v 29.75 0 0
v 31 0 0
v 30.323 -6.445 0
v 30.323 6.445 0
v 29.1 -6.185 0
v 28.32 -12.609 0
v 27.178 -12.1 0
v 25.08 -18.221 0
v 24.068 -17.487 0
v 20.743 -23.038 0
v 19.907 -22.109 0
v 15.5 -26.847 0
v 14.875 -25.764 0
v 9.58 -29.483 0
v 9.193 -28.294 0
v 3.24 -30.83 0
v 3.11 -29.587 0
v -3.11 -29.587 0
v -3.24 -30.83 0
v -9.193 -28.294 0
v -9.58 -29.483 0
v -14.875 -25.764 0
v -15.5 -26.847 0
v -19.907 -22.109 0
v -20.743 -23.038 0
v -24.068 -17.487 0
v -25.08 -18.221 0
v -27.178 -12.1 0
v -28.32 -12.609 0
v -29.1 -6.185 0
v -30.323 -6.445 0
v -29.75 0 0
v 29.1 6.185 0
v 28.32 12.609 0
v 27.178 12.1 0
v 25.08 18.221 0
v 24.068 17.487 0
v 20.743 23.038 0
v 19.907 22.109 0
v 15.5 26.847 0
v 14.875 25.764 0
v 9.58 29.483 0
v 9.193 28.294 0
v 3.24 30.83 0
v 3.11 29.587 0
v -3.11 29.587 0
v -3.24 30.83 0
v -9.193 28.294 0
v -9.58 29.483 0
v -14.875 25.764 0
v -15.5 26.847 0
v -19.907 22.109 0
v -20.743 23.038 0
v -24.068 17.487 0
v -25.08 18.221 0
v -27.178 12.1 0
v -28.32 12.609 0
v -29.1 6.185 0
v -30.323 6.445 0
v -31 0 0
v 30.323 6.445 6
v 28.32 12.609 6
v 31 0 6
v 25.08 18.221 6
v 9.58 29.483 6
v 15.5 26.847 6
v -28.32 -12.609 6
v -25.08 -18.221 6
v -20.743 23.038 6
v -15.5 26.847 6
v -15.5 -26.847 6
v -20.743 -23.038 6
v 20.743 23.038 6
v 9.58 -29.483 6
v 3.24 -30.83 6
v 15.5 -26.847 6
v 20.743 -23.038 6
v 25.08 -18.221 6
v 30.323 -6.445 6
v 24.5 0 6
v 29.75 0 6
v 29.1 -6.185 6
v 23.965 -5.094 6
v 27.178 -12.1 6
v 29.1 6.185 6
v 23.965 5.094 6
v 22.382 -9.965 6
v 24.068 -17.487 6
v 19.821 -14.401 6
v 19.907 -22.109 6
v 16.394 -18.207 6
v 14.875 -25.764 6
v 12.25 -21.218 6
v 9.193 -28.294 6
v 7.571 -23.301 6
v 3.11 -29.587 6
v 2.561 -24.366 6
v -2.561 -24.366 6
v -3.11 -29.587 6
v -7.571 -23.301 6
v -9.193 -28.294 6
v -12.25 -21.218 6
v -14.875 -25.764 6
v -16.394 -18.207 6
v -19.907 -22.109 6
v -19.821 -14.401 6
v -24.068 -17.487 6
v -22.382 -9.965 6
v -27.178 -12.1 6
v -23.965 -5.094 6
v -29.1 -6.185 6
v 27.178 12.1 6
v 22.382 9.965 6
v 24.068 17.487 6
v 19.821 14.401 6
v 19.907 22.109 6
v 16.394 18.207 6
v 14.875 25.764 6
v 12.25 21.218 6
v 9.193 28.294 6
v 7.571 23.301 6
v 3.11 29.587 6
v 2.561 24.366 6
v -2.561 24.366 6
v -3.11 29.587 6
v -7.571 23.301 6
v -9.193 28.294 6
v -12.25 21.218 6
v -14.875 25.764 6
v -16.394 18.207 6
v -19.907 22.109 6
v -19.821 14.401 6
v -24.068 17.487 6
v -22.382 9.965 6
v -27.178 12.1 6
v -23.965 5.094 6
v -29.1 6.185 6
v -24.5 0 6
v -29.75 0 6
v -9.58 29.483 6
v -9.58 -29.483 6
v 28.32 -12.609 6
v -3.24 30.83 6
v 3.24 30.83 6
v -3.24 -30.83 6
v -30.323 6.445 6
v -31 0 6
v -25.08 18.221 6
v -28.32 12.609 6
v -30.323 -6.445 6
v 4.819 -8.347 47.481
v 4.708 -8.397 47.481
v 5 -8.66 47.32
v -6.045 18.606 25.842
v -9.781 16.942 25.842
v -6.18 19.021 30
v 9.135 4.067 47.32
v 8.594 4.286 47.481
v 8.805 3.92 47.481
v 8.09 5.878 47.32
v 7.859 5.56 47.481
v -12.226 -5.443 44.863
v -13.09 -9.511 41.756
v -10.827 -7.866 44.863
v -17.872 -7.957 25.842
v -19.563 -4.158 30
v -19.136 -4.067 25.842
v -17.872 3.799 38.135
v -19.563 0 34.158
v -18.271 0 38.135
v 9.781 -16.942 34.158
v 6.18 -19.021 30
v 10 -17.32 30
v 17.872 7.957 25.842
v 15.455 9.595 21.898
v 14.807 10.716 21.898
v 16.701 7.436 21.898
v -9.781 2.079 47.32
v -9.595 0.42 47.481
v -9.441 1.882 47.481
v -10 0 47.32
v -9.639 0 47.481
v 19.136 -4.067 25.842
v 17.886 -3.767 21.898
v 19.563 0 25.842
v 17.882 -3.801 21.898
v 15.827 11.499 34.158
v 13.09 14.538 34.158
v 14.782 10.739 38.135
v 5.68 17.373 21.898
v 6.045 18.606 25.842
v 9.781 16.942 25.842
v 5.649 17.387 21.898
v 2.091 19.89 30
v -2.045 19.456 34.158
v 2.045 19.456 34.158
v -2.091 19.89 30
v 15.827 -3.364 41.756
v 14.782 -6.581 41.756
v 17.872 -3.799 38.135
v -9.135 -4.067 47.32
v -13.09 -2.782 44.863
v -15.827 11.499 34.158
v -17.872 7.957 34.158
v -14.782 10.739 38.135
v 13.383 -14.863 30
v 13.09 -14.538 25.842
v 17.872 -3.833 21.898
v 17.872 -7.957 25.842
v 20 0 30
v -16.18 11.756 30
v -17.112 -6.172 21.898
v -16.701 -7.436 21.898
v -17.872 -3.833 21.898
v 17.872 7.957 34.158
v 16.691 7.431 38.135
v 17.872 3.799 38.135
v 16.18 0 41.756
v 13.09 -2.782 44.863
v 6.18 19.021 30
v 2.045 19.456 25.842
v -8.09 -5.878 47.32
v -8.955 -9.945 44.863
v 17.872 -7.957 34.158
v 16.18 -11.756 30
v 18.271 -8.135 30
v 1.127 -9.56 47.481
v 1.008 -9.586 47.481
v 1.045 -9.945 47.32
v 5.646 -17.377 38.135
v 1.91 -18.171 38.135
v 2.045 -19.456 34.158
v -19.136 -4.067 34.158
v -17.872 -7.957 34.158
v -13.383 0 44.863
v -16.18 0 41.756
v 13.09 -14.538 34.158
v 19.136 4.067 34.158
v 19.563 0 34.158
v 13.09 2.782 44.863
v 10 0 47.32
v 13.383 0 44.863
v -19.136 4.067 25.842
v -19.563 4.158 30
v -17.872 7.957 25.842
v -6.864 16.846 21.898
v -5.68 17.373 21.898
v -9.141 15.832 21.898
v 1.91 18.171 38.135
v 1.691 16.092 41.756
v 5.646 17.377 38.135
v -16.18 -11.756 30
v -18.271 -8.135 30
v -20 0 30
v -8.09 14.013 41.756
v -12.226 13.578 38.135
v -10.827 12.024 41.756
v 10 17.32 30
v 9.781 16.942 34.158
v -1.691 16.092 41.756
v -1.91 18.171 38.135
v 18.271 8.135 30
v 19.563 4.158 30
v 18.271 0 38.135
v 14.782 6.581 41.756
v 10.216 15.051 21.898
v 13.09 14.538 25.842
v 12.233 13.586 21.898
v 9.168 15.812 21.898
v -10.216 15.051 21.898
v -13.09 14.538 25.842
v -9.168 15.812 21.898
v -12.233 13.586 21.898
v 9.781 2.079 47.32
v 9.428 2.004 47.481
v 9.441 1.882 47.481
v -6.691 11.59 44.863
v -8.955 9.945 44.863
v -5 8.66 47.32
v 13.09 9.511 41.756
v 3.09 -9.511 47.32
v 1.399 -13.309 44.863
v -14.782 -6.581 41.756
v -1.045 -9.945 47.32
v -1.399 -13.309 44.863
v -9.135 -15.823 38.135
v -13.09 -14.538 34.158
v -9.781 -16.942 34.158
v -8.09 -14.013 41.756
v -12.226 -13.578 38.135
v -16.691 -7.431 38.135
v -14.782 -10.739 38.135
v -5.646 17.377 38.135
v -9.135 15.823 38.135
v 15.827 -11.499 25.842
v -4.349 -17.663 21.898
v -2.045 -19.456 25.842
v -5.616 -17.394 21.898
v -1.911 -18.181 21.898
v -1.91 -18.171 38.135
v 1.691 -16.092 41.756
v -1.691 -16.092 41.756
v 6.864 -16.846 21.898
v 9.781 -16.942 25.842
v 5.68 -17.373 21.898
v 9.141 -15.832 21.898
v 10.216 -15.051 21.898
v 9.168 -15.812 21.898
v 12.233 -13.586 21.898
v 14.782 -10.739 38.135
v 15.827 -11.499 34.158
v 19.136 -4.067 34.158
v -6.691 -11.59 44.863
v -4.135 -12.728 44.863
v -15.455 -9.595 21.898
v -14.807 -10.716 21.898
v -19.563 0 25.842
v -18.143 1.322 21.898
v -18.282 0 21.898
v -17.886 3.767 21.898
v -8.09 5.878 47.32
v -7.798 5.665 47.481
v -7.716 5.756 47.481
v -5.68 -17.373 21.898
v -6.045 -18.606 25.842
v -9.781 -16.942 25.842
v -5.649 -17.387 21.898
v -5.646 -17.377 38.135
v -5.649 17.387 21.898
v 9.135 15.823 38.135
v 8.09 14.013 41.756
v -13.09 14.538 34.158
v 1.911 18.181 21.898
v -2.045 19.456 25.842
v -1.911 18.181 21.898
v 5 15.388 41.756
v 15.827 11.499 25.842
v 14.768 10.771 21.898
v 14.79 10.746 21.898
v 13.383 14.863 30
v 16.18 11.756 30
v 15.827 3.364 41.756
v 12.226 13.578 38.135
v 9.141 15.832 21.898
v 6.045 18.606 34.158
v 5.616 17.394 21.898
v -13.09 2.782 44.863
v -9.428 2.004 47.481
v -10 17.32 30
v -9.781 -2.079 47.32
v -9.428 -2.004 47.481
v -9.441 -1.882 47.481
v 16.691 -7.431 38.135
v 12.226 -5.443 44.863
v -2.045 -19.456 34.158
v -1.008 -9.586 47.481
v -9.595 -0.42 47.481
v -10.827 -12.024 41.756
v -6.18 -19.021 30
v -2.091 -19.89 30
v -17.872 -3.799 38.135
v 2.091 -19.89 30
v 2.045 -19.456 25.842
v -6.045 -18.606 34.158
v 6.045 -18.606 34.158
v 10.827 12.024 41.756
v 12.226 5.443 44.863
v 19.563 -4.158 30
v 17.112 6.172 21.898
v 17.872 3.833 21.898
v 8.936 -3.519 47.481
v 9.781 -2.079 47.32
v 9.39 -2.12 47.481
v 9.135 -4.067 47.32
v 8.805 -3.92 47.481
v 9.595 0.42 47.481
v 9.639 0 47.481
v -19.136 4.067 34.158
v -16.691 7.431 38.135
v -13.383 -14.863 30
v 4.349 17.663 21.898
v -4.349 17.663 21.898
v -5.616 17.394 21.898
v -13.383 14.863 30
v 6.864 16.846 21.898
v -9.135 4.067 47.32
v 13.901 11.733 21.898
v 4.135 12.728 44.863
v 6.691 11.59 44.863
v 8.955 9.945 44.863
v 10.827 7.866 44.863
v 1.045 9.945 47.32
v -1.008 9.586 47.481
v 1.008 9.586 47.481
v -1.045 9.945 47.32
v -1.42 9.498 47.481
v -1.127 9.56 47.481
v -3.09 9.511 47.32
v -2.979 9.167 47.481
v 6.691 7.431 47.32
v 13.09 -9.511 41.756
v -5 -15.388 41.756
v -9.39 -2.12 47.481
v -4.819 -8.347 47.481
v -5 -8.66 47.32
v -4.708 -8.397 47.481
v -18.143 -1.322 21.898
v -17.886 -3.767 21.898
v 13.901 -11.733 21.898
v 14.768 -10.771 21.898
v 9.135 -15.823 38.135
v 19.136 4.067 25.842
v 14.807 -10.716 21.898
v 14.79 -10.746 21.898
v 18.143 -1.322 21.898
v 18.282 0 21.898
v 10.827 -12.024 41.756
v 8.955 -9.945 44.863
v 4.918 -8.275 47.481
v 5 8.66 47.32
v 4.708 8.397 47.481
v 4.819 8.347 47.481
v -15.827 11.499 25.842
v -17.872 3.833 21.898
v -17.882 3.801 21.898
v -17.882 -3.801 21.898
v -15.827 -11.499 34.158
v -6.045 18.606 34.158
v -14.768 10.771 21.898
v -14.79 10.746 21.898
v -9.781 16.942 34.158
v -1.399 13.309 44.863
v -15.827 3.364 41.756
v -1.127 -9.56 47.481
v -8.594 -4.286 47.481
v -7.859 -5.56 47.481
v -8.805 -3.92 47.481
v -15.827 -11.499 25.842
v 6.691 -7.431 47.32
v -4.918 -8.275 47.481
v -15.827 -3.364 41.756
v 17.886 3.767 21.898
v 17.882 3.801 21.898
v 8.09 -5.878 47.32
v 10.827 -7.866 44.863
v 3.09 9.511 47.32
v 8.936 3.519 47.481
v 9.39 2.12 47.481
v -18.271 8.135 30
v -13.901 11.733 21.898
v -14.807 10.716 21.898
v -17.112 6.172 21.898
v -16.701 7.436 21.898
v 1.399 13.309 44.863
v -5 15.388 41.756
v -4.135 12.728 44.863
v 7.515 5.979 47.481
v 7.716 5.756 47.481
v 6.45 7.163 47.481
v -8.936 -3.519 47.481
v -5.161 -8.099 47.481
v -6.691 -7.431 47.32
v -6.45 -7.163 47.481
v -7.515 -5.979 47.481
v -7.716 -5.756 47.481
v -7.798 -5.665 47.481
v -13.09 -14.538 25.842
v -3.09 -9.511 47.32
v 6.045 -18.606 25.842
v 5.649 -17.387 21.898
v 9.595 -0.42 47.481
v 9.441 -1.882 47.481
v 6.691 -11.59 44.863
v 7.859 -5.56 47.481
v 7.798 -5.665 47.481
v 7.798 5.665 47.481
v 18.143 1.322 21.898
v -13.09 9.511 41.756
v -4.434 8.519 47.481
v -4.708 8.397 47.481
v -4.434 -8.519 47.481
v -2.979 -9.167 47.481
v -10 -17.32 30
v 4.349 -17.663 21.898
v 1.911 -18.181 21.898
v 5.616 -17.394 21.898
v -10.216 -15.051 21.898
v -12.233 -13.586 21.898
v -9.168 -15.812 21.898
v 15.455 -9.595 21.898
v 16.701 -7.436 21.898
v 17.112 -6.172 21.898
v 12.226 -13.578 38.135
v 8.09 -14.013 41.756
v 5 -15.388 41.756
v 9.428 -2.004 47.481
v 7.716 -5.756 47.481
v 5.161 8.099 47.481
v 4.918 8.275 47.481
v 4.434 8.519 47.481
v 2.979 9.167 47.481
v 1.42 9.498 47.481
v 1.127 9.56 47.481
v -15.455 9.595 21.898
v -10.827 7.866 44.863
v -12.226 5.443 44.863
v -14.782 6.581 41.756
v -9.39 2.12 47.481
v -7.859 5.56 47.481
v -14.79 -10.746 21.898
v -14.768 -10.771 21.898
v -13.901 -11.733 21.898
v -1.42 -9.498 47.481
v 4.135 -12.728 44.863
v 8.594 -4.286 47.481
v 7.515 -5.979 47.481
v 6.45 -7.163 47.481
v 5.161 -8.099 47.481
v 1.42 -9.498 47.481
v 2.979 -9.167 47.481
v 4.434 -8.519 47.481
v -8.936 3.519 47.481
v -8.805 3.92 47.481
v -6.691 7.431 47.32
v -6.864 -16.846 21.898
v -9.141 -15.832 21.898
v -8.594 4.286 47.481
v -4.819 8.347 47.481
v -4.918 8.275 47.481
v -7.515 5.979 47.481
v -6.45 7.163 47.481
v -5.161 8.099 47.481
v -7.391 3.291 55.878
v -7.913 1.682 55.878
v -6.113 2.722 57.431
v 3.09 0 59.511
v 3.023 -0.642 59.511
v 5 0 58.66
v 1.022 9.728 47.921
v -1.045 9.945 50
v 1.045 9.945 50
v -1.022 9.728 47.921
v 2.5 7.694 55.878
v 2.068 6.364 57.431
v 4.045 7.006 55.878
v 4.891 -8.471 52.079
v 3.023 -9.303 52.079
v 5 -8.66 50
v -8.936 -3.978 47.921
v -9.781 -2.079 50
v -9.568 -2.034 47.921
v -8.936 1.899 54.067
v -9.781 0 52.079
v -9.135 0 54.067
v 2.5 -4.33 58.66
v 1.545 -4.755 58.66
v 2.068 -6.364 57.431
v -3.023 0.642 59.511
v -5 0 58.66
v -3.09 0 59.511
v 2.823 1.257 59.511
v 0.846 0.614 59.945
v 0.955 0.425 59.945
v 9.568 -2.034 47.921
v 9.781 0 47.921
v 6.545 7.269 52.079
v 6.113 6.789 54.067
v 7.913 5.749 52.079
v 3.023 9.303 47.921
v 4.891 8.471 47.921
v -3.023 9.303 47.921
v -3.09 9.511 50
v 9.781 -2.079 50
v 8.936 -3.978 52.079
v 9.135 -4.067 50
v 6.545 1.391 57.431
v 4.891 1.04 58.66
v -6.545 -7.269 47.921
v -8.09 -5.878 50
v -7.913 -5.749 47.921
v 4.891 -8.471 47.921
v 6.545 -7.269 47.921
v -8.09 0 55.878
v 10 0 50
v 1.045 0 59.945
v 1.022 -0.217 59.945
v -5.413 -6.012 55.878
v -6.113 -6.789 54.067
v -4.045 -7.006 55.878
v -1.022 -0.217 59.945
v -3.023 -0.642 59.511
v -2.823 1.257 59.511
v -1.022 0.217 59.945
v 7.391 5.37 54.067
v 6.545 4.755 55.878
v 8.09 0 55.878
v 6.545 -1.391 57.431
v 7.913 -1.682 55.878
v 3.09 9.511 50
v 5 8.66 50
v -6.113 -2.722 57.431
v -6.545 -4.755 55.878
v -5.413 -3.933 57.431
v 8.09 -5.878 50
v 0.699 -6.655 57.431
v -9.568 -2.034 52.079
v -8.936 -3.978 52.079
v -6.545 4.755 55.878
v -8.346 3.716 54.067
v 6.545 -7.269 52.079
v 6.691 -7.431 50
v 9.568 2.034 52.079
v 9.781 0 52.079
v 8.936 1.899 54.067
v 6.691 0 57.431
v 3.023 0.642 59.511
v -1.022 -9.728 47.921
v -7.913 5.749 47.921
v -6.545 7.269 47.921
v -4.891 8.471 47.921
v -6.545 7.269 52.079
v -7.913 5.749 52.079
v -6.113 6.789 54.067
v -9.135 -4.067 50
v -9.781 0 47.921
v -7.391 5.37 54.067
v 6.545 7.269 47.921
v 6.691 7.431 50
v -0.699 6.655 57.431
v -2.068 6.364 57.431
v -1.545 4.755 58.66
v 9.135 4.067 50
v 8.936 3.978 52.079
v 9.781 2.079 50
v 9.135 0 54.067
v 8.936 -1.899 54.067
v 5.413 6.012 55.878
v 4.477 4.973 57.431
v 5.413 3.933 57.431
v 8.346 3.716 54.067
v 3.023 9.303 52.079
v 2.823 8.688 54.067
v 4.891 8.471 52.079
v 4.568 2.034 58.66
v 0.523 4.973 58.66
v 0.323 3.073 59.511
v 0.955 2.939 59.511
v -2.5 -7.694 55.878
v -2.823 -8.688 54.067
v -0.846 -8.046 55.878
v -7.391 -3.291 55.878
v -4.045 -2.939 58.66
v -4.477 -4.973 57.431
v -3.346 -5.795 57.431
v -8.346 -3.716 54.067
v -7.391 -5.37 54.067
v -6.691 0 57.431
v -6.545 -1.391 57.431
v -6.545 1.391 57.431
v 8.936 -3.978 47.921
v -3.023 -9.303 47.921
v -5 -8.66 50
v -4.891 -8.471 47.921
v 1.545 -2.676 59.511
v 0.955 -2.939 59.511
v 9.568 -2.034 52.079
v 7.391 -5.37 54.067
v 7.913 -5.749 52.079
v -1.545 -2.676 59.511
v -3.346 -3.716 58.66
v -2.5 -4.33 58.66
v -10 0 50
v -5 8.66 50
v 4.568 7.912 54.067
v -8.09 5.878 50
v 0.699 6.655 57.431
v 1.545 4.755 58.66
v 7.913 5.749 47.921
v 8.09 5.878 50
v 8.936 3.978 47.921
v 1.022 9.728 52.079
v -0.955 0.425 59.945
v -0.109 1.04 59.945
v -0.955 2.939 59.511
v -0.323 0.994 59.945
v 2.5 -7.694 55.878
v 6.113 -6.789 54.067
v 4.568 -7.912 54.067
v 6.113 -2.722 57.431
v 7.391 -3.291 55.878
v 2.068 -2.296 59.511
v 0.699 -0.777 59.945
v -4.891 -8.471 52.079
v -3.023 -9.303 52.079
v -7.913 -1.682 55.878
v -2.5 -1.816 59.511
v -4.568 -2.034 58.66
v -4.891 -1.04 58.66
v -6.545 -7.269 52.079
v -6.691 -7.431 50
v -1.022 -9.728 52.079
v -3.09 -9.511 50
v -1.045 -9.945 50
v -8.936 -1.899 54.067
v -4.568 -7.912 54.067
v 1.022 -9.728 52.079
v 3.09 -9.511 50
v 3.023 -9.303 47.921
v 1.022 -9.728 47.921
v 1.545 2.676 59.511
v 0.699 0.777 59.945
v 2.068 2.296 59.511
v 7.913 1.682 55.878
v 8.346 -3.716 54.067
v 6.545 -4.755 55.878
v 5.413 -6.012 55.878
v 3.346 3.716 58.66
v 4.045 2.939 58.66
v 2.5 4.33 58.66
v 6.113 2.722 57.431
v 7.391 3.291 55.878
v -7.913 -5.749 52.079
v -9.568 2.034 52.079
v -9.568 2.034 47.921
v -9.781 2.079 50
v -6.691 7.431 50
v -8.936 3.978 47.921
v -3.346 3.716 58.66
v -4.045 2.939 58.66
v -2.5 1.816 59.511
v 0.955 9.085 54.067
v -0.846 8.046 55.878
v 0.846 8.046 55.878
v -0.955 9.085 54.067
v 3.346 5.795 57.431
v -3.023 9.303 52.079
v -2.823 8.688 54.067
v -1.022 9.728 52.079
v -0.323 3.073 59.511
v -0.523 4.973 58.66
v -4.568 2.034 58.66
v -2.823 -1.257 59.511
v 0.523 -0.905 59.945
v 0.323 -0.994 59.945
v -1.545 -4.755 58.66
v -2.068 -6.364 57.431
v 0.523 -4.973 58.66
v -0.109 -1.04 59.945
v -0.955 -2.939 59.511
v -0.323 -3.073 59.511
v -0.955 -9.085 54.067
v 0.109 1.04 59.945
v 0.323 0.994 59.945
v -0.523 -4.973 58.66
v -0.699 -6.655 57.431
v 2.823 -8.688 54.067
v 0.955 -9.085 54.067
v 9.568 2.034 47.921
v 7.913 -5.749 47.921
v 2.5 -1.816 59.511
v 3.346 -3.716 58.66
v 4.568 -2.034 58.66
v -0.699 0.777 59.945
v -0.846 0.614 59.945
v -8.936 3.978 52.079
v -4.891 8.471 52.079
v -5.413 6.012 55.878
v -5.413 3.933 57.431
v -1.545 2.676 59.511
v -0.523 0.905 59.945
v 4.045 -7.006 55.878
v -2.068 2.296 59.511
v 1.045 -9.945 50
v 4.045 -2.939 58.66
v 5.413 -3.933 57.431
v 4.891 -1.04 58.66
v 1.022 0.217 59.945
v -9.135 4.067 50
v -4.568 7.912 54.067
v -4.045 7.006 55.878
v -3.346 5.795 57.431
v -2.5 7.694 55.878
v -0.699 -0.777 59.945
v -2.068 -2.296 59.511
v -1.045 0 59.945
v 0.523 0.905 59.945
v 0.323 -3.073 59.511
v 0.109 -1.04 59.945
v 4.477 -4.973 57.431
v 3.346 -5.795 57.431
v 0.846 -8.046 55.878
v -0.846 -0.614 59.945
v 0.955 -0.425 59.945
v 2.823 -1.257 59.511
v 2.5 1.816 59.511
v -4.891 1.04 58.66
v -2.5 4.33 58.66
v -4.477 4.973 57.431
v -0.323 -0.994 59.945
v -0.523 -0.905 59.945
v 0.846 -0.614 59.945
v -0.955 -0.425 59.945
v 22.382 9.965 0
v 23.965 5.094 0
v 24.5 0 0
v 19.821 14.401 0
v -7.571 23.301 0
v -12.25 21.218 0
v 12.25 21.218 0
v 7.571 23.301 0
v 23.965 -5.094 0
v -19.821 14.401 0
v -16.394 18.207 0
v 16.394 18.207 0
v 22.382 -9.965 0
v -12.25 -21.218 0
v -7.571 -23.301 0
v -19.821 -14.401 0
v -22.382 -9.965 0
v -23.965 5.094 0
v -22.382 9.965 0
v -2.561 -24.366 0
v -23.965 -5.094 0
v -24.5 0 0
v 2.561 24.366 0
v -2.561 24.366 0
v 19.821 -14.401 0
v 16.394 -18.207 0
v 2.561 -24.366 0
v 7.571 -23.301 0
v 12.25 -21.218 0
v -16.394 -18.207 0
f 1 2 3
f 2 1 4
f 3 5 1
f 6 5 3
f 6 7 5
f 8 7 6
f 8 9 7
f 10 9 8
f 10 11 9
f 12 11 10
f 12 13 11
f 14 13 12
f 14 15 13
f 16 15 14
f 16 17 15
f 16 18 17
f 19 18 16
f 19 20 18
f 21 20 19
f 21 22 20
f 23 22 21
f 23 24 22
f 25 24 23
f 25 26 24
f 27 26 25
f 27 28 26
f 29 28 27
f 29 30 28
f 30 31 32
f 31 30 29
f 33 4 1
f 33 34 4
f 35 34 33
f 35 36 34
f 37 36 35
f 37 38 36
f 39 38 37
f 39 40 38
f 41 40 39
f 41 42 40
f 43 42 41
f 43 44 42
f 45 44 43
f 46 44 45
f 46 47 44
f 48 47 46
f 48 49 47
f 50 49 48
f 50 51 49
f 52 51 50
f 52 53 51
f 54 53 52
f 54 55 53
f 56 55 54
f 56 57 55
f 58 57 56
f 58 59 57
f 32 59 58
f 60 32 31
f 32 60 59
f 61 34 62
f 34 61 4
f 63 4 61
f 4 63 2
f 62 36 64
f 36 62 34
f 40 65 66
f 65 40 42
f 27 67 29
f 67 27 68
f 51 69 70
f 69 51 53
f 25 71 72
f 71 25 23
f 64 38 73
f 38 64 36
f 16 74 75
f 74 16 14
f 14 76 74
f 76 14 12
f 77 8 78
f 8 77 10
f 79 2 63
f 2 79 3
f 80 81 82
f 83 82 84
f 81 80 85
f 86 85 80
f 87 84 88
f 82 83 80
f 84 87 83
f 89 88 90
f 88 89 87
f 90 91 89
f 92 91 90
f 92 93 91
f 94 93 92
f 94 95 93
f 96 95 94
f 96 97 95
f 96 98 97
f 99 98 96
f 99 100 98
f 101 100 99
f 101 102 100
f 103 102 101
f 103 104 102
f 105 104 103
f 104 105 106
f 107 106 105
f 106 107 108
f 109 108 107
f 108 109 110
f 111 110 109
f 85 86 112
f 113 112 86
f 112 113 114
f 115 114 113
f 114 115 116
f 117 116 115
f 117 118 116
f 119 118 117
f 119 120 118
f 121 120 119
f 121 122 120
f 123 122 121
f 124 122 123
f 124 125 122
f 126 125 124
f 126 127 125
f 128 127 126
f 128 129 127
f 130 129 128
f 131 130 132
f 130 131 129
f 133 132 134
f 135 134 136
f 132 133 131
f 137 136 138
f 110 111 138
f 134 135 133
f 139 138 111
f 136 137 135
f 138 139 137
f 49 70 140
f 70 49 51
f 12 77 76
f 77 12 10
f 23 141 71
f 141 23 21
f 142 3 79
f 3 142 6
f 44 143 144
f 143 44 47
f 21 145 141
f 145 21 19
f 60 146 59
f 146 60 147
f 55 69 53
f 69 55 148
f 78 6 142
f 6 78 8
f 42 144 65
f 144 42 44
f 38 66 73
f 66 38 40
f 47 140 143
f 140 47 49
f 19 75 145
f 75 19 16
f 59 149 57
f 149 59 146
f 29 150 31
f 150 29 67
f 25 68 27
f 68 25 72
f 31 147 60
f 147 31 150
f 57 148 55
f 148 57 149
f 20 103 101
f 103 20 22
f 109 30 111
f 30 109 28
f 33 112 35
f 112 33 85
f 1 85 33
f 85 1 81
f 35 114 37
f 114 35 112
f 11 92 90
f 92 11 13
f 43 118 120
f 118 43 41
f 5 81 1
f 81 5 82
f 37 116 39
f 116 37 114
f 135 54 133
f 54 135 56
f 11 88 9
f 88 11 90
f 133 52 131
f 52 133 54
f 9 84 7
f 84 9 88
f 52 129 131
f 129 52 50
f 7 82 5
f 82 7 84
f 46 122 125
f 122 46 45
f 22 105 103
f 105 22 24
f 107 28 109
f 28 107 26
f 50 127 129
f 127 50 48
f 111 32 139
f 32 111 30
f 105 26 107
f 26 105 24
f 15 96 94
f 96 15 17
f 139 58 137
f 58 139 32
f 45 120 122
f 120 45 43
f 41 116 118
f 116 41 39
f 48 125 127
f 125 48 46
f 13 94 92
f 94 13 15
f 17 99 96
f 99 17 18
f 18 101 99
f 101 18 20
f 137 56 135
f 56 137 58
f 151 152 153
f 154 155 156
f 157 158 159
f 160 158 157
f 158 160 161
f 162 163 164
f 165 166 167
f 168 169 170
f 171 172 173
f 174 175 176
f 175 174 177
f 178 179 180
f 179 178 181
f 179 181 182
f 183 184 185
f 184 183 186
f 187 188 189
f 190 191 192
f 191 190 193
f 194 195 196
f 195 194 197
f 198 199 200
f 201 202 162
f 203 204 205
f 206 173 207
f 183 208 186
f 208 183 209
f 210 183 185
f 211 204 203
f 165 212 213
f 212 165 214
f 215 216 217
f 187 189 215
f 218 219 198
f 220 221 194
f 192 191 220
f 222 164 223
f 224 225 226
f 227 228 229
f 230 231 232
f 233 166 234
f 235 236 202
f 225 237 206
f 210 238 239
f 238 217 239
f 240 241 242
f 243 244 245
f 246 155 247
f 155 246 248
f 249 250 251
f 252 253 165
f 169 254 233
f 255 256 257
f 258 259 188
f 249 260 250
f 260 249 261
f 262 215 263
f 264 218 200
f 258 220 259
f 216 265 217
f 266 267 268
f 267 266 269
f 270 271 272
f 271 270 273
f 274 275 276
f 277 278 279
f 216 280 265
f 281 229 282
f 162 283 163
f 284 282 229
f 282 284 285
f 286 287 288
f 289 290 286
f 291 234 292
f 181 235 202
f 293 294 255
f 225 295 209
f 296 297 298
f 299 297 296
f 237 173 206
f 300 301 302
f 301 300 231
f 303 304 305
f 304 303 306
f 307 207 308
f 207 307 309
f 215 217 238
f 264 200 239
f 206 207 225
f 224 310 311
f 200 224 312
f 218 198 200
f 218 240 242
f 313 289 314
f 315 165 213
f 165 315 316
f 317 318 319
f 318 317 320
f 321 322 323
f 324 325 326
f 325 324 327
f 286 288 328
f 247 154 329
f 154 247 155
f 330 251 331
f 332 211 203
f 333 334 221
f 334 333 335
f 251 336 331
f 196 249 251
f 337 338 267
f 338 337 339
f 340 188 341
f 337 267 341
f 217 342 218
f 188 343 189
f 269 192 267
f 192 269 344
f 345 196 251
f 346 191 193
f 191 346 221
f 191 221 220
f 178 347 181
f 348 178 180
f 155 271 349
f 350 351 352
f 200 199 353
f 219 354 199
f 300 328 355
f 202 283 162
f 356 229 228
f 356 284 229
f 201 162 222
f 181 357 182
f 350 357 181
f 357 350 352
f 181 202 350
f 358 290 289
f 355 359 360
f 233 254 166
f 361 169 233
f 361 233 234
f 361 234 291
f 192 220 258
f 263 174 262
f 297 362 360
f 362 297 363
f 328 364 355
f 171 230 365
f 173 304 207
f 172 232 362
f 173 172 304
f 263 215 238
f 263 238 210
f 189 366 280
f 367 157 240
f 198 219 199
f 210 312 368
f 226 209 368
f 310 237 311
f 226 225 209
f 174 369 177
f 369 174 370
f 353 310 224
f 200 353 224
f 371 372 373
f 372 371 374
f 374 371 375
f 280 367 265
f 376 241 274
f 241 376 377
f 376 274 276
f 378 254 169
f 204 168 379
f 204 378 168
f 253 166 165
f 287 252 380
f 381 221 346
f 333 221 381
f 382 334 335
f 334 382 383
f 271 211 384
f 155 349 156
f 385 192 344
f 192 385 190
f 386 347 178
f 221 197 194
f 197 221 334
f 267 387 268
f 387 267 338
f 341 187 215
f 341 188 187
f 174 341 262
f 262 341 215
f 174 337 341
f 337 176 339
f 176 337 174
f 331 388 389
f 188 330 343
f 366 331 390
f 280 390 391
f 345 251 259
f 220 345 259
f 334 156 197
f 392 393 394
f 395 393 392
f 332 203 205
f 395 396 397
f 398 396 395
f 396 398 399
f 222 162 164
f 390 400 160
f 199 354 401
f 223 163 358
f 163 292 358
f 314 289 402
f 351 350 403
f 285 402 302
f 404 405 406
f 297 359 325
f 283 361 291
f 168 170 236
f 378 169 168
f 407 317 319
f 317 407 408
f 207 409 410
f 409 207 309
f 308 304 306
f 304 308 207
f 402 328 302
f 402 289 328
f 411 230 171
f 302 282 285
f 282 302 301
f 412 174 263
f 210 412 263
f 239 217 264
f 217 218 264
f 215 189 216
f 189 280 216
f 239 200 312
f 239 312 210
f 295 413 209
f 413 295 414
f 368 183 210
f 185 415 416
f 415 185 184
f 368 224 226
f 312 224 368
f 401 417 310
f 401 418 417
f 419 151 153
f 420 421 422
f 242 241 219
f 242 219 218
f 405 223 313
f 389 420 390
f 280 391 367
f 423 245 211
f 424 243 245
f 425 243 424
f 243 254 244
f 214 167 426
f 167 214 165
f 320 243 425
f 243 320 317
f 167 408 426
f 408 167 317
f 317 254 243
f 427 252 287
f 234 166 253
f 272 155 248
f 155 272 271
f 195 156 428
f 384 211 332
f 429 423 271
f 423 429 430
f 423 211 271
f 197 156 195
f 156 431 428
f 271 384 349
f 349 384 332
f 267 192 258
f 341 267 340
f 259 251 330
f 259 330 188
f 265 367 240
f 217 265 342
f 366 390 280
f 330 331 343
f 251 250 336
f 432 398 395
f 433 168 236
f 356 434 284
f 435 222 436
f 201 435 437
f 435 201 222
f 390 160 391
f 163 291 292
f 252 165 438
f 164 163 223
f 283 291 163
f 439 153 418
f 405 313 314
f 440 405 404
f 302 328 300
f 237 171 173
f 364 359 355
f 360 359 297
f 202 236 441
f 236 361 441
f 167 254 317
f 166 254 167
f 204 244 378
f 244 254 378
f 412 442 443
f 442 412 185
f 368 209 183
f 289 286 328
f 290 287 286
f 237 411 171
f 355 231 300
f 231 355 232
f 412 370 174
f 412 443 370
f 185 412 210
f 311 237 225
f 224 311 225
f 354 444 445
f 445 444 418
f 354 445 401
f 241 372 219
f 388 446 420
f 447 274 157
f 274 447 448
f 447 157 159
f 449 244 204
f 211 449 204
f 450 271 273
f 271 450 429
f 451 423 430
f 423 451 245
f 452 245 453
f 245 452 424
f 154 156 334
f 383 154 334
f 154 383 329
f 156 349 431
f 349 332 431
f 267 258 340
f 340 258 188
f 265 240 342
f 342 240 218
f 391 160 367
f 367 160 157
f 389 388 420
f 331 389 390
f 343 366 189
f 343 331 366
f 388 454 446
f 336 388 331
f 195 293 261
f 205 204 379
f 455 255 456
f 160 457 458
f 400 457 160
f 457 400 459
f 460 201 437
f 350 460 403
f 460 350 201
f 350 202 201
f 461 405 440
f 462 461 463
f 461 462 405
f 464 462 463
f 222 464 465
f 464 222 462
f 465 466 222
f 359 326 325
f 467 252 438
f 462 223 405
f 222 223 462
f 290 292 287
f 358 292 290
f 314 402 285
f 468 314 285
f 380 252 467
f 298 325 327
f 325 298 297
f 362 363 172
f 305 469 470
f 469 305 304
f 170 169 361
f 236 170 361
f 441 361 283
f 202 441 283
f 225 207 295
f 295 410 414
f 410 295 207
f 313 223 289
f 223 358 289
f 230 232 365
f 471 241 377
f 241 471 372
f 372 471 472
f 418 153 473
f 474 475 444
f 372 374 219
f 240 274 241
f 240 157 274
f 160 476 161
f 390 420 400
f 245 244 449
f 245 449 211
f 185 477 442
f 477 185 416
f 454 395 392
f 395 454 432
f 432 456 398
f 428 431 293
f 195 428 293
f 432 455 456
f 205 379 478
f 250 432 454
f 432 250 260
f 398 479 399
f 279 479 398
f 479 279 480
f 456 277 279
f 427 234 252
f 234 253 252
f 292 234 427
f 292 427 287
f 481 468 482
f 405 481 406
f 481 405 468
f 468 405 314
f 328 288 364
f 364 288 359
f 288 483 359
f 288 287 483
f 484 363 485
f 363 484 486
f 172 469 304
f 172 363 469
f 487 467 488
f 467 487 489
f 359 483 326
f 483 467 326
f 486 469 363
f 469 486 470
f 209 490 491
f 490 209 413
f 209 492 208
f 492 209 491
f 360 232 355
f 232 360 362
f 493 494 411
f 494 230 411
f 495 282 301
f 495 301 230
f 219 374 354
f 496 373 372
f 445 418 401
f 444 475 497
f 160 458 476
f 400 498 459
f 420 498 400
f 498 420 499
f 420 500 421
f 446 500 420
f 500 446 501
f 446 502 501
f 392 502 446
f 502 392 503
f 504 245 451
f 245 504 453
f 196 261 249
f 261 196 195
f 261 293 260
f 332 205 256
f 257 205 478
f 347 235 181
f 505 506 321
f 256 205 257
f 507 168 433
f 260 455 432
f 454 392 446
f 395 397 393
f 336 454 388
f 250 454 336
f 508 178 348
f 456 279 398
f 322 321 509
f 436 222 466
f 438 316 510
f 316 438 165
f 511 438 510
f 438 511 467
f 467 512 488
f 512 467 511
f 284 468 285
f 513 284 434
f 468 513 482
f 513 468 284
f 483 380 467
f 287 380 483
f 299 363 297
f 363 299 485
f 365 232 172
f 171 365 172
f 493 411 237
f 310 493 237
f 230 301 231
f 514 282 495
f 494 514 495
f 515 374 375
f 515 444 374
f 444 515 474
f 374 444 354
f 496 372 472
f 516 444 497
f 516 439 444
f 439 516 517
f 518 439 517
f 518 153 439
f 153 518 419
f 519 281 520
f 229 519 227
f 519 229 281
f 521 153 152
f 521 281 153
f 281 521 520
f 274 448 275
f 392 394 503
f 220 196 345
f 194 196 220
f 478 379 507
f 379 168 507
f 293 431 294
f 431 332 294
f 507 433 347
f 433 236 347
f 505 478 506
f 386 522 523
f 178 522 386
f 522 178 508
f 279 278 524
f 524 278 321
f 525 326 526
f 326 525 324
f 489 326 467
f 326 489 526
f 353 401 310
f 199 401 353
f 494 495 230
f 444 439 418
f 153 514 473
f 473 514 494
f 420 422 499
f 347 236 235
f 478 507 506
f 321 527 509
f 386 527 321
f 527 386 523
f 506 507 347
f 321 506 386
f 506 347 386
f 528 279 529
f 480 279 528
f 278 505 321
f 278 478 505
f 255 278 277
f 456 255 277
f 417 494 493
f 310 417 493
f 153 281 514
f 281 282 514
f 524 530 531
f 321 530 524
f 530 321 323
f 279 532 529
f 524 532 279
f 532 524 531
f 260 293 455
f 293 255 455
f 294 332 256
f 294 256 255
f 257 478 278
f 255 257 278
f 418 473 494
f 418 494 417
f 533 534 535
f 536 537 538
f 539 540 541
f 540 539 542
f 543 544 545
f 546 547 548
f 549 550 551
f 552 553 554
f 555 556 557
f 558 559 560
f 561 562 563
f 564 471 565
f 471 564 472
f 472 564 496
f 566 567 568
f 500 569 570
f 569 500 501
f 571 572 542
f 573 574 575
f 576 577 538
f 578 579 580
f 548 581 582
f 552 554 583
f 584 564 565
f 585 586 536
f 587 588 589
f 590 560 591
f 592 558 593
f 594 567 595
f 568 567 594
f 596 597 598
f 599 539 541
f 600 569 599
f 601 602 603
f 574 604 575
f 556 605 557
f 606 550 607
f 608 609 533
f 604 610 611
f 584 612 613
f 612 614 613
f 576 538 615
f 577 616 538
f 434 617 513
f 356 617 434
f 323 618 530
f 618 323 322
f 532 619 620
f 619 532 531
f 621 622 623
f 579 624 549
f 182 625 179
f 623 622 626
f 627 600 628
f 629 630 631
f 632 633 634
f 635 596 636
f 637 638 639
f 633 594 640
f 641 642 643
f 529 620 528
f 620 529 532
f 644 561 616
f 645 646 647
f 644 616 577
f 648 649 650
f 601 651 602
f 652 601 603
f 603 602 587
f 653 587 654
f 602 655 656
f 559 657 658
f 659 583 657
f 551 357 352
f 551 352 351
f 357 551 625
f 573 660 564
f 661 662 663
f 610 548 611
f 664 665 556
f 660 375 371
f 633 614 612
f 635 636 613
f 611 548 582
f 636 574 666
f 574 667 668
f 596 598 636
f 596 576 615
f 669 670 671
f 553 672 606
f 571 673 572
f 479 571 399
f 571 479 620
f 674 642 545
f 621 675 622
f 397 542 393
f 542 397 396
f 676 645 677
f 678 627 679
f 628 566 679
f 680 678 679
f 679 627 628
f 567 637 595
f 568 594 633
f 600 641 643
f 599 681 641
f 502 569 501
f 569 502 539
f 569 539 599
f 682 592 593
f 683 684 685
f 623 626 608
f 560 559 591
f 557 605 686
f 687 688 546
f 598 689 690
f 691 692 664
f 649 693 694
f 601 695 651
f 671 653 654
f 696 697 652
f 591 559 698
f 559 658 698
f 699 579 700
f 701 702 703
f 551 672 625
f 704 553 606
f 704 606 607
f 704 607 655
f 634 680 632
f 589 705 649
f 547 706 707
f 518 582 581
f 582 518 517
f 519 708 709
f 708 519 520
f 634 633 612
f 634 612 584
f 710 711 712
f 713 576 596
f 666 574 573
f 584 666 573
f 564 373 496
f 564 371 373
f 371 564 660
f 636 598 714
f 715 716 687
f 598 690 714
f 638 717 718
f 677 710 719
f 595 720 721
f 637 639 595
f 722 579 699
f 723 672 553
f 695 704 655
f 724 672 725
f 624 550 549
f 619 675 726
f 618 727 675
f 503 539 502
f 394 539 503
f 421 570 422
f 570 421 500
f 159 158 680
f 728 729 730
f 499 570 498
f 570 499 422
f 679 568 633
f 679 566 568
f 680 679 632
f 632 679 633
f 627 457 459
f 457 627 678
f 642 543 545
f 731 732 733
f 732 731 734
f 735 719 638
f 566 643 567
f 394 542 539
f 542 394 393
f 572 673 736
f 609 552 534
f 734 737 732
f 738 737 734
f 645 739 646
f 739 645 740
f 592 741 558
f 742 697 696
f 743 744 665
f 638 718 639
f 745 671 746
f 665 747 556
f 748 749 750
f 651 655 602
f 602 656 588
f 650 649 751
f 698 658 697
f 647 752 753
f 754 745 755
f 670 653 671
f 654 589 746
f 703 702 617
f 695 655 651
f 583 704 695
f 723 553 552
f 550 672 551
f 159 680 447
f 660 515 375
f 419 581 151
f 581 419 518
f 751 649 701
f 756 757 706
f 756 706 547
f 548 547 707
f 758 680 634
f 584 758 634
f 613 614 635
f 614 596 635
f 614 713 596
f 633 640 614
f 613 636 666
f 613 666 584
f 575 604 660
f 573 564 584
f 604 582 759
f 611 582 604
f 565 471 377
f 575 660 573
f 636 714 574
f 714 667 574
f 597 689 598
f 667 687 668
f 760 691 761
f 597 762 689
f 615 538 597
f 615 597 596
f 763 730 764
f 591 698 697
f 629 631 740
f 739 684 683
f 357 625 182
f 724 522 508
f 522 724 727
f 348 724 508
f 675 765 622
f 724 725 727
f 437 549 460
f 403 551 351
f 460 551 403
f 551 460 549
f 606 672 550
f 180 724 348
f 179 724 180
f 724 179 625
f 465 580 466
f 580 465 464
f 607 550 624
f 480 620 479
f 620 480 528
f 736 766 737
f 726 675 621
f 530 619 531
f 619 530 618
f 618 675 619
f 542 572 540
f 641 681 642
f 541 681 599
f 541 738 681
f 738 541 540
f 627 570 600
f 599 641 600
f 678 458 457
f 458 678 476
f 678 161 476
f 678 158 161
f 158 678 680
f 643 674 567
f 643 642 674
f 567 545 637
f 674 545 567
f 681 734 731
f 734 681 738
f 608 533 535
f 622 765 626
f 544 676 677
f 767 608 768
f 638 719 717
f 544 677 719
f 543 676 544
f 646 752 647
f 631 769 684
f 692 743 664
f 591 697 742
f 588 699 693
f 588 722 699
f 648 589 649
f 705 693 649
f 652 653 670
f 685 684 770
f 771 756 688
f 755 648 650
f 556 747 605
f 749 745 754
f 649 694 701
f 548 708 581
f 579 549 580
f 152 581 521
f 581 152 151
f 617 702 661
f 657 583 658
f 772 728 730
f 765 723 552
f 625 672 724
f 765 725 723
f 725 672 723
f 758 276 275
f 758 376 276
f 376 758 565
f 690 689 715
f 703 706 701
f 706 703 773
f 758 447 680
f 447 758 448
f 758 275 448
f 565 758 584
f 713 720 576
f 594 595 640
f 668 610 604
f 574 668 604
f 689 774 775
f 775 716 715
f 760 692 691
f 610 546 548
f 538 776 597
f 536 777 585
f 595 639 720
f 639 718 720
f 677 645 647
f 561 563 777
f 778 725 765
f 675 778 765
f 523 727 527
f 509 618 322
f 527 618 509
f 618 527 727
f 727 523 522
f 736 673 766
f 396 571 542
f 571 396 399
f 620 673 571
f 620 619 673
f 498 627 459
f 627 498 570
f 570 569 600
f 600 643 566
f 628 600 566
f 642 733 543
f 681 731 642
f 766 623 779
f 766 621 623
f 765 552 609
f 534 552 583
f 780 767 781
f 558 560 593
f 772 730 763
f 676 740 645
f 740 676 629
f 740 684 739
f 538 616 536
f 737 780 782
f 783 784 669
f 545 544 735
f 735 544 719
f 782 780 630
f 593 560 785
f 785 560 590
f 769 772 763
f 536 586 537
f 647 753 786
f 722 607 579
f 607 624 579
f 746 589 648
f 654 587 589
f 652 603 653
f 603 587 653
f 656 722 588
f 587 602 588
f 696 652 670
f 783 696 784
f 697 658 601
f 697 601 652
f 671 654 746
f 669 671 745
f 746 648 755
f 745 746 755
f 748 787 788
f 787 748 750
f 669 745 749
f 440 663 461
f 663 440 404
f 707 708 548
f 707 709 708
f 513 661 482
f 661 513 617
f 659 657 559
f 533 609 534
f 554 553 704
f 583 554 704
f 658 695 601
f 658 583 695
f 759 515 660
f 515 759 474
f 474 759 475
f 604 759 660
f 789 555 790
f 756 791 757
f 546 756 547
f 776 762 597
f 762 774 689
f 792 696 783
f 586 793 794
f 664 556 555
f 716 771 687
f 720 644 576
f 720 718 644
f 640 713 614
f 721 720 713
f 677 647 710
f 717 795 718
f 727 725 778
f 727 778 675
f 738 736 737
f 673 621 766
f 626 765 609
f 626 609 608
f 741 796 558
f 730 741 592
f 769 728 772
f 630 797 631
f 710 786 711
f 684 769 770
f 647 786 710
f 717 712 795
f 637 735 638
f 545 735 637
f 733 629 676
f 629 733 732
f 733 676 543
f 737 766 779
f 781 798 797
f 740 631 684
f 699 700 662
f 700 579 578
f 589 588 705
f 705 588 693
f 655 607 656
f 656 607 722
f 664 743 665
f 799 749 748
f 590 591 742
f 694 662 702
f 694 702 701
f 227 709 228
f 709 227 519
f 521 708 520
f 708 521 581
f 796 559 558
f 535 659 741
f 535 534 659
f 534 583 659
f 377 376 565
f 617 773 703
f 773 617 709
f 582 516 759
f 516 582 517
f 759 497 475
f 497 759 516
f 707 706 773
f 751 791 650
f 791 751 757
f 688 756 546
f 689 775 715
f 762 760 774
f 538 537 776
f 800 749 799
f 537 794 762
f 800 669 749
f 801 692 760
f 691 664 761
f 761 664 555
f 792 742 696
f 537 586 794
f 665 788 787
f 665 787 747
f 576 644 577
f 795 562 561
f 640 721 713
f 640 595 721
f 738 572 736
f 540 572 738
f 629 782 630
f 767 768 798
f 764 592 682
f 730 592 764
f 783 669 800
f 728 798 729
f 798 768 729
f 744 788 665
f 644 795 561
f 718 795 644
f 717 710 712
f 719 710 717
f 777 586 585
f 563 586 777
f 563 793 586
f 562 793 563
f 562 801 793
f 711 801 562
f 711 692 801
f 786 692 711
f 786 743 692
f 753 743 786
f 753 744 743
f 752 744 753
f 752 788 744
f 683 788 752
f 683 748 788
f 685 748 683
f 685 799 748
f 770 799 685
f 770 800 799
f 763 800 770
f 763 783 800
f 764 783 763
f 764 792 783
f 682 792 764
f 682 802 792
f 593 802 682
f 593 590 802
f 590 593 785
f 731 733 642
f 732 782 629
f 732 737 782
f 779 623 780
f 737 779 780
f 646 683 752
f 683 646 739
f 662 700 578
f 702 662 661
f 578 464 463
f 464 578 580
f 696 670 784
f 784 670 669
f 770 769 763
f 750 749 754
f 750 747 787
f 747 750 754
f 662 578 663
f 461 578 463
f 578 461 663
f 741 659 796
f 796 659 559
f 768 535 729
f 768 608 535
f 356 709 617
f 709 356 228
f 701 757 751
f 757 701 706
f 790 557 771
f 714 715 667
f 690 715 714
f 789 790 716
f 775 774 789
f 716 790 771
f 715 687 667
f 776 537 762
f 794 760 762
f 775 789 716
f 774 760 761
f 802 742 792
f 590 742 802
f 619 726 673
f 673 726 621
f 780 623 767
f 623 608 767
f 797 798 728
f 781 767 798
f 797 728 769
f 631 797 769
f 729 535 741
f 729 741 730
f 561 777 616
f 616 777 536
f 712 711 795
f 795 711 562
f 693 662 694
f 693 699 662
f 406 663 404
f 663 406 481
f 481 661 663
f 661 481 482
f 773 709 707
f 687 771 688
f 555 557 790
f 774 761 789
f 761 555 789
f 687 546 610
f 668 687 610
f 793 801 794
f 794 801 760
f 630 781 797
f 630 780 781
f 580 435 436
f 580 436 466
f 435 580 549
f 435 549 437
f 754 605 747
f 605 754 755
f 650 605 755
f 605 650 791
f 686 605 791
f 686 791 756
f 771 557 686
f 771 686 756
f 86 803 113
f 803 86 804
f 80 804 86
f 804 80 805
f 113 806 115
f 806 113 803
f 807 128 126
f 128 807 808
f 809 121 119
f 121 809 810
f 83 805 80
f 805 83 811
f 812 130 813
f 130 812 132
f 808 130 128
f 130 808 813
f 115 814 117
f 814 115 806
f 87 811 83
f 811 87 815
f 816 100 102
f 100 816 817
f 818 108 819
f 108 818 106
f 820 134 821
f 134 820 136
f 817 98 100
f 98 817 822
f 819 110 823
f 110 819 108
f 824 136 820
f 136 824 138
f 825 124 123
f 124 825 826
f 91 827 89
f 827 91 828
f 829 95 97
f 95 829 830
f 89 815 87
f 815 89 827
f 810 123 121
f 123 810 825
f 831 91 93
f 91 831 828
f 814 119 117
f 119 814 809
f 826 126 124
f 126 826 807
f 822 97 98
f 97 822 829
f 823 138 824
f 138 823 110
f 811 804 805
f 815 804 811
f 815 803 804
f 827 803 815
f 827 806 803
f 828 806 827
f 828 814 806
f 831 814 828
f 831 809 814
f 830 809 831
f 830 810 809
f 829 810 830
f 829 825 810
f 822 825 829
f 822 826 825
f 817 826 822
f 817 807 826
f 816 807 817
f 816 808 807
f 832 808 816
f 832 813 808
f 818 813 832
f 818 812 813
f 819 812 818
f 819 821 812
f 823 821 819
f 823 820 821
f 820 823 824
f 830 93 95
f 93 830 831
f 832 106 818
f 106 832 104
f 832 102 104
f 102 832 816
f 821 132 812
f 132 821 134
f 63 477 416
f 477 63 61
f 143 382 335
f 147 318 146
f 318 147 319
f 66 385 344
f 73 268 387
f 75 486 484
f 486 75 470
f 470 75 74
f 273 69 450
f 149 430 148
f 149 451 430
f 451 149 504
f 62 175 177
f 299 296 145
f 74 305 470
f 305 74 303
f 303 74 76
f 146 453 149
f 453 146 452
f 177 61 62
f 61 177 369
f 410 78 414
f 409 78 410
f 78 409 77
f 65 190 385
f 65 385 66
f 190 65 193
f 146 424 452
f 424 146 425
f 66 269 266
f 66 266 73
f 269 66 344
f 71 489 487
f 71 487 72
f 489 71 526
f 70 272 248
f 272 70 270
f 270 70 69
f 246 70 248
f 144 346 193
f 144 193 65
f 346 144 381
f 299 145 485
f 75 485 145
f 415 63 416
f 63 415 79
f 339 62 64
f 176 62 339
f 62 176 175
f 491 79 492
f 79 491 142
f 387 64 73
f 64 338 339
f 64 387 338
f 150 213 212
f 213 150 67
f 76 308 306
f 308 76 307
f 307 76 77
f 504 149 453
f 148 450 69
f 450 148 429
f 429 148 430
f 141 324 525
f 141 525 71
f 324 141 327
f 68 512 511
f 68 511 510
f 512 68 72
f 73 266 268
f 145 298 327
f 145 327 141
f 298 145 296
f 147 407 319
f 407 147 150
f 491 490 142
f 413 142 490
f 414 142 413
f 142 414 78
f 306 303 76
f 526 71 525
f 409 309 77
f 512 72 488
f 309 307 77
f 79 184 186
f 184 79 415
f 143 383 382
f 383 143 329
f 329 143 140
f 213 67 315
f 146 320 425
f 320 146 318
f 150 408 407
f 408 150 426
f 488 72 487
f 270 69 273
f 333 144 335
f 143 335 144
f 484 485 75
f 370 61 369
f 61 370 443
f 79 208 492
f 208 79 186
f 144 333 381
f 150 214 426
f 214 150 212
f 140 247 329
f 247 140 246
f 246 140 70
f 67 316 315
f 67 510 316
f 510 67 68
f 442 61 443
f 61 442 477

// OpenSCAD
scale([.5, .5, 1]) {

difference() {
    translate([0, 0, 0]) {
        cylinder(6, 62, 62);
    } 
    translate([0, 0, -1]) { 
        cylinder(25, 59.5, 59.5);
    }
}
    translate([0, 0, 0]) { 
       cylinder(12, 49, 49);
    }
    translate([0, 0, 6]) { 
       cylinder(20, 62, 30);
    }
    scale([1, 1, .5]) {
    translate([0, 0, 60]) { 
        sphere(40, true);
    }
    translate([0, 0, 100]) { 
        sphere(20, true);
    }
}
    /*translate([0, 0, 26]) { 
       cylinder(20, 30, 50);
    }
    translate([0, 0, 46]) { 
       cylinder(20, 50, 30);
    }
    translate([0, 0, 66]) { 
       cylinder(20, 30, 70);
    }
    difference() {
        translate([0, 0, 82]) { 
           cylinder(12, 58.5, 58.5);
        }
        translate([0, 0, 82]) { 
           cylinder(15, 50, 50);
        }
    }
    */
}
